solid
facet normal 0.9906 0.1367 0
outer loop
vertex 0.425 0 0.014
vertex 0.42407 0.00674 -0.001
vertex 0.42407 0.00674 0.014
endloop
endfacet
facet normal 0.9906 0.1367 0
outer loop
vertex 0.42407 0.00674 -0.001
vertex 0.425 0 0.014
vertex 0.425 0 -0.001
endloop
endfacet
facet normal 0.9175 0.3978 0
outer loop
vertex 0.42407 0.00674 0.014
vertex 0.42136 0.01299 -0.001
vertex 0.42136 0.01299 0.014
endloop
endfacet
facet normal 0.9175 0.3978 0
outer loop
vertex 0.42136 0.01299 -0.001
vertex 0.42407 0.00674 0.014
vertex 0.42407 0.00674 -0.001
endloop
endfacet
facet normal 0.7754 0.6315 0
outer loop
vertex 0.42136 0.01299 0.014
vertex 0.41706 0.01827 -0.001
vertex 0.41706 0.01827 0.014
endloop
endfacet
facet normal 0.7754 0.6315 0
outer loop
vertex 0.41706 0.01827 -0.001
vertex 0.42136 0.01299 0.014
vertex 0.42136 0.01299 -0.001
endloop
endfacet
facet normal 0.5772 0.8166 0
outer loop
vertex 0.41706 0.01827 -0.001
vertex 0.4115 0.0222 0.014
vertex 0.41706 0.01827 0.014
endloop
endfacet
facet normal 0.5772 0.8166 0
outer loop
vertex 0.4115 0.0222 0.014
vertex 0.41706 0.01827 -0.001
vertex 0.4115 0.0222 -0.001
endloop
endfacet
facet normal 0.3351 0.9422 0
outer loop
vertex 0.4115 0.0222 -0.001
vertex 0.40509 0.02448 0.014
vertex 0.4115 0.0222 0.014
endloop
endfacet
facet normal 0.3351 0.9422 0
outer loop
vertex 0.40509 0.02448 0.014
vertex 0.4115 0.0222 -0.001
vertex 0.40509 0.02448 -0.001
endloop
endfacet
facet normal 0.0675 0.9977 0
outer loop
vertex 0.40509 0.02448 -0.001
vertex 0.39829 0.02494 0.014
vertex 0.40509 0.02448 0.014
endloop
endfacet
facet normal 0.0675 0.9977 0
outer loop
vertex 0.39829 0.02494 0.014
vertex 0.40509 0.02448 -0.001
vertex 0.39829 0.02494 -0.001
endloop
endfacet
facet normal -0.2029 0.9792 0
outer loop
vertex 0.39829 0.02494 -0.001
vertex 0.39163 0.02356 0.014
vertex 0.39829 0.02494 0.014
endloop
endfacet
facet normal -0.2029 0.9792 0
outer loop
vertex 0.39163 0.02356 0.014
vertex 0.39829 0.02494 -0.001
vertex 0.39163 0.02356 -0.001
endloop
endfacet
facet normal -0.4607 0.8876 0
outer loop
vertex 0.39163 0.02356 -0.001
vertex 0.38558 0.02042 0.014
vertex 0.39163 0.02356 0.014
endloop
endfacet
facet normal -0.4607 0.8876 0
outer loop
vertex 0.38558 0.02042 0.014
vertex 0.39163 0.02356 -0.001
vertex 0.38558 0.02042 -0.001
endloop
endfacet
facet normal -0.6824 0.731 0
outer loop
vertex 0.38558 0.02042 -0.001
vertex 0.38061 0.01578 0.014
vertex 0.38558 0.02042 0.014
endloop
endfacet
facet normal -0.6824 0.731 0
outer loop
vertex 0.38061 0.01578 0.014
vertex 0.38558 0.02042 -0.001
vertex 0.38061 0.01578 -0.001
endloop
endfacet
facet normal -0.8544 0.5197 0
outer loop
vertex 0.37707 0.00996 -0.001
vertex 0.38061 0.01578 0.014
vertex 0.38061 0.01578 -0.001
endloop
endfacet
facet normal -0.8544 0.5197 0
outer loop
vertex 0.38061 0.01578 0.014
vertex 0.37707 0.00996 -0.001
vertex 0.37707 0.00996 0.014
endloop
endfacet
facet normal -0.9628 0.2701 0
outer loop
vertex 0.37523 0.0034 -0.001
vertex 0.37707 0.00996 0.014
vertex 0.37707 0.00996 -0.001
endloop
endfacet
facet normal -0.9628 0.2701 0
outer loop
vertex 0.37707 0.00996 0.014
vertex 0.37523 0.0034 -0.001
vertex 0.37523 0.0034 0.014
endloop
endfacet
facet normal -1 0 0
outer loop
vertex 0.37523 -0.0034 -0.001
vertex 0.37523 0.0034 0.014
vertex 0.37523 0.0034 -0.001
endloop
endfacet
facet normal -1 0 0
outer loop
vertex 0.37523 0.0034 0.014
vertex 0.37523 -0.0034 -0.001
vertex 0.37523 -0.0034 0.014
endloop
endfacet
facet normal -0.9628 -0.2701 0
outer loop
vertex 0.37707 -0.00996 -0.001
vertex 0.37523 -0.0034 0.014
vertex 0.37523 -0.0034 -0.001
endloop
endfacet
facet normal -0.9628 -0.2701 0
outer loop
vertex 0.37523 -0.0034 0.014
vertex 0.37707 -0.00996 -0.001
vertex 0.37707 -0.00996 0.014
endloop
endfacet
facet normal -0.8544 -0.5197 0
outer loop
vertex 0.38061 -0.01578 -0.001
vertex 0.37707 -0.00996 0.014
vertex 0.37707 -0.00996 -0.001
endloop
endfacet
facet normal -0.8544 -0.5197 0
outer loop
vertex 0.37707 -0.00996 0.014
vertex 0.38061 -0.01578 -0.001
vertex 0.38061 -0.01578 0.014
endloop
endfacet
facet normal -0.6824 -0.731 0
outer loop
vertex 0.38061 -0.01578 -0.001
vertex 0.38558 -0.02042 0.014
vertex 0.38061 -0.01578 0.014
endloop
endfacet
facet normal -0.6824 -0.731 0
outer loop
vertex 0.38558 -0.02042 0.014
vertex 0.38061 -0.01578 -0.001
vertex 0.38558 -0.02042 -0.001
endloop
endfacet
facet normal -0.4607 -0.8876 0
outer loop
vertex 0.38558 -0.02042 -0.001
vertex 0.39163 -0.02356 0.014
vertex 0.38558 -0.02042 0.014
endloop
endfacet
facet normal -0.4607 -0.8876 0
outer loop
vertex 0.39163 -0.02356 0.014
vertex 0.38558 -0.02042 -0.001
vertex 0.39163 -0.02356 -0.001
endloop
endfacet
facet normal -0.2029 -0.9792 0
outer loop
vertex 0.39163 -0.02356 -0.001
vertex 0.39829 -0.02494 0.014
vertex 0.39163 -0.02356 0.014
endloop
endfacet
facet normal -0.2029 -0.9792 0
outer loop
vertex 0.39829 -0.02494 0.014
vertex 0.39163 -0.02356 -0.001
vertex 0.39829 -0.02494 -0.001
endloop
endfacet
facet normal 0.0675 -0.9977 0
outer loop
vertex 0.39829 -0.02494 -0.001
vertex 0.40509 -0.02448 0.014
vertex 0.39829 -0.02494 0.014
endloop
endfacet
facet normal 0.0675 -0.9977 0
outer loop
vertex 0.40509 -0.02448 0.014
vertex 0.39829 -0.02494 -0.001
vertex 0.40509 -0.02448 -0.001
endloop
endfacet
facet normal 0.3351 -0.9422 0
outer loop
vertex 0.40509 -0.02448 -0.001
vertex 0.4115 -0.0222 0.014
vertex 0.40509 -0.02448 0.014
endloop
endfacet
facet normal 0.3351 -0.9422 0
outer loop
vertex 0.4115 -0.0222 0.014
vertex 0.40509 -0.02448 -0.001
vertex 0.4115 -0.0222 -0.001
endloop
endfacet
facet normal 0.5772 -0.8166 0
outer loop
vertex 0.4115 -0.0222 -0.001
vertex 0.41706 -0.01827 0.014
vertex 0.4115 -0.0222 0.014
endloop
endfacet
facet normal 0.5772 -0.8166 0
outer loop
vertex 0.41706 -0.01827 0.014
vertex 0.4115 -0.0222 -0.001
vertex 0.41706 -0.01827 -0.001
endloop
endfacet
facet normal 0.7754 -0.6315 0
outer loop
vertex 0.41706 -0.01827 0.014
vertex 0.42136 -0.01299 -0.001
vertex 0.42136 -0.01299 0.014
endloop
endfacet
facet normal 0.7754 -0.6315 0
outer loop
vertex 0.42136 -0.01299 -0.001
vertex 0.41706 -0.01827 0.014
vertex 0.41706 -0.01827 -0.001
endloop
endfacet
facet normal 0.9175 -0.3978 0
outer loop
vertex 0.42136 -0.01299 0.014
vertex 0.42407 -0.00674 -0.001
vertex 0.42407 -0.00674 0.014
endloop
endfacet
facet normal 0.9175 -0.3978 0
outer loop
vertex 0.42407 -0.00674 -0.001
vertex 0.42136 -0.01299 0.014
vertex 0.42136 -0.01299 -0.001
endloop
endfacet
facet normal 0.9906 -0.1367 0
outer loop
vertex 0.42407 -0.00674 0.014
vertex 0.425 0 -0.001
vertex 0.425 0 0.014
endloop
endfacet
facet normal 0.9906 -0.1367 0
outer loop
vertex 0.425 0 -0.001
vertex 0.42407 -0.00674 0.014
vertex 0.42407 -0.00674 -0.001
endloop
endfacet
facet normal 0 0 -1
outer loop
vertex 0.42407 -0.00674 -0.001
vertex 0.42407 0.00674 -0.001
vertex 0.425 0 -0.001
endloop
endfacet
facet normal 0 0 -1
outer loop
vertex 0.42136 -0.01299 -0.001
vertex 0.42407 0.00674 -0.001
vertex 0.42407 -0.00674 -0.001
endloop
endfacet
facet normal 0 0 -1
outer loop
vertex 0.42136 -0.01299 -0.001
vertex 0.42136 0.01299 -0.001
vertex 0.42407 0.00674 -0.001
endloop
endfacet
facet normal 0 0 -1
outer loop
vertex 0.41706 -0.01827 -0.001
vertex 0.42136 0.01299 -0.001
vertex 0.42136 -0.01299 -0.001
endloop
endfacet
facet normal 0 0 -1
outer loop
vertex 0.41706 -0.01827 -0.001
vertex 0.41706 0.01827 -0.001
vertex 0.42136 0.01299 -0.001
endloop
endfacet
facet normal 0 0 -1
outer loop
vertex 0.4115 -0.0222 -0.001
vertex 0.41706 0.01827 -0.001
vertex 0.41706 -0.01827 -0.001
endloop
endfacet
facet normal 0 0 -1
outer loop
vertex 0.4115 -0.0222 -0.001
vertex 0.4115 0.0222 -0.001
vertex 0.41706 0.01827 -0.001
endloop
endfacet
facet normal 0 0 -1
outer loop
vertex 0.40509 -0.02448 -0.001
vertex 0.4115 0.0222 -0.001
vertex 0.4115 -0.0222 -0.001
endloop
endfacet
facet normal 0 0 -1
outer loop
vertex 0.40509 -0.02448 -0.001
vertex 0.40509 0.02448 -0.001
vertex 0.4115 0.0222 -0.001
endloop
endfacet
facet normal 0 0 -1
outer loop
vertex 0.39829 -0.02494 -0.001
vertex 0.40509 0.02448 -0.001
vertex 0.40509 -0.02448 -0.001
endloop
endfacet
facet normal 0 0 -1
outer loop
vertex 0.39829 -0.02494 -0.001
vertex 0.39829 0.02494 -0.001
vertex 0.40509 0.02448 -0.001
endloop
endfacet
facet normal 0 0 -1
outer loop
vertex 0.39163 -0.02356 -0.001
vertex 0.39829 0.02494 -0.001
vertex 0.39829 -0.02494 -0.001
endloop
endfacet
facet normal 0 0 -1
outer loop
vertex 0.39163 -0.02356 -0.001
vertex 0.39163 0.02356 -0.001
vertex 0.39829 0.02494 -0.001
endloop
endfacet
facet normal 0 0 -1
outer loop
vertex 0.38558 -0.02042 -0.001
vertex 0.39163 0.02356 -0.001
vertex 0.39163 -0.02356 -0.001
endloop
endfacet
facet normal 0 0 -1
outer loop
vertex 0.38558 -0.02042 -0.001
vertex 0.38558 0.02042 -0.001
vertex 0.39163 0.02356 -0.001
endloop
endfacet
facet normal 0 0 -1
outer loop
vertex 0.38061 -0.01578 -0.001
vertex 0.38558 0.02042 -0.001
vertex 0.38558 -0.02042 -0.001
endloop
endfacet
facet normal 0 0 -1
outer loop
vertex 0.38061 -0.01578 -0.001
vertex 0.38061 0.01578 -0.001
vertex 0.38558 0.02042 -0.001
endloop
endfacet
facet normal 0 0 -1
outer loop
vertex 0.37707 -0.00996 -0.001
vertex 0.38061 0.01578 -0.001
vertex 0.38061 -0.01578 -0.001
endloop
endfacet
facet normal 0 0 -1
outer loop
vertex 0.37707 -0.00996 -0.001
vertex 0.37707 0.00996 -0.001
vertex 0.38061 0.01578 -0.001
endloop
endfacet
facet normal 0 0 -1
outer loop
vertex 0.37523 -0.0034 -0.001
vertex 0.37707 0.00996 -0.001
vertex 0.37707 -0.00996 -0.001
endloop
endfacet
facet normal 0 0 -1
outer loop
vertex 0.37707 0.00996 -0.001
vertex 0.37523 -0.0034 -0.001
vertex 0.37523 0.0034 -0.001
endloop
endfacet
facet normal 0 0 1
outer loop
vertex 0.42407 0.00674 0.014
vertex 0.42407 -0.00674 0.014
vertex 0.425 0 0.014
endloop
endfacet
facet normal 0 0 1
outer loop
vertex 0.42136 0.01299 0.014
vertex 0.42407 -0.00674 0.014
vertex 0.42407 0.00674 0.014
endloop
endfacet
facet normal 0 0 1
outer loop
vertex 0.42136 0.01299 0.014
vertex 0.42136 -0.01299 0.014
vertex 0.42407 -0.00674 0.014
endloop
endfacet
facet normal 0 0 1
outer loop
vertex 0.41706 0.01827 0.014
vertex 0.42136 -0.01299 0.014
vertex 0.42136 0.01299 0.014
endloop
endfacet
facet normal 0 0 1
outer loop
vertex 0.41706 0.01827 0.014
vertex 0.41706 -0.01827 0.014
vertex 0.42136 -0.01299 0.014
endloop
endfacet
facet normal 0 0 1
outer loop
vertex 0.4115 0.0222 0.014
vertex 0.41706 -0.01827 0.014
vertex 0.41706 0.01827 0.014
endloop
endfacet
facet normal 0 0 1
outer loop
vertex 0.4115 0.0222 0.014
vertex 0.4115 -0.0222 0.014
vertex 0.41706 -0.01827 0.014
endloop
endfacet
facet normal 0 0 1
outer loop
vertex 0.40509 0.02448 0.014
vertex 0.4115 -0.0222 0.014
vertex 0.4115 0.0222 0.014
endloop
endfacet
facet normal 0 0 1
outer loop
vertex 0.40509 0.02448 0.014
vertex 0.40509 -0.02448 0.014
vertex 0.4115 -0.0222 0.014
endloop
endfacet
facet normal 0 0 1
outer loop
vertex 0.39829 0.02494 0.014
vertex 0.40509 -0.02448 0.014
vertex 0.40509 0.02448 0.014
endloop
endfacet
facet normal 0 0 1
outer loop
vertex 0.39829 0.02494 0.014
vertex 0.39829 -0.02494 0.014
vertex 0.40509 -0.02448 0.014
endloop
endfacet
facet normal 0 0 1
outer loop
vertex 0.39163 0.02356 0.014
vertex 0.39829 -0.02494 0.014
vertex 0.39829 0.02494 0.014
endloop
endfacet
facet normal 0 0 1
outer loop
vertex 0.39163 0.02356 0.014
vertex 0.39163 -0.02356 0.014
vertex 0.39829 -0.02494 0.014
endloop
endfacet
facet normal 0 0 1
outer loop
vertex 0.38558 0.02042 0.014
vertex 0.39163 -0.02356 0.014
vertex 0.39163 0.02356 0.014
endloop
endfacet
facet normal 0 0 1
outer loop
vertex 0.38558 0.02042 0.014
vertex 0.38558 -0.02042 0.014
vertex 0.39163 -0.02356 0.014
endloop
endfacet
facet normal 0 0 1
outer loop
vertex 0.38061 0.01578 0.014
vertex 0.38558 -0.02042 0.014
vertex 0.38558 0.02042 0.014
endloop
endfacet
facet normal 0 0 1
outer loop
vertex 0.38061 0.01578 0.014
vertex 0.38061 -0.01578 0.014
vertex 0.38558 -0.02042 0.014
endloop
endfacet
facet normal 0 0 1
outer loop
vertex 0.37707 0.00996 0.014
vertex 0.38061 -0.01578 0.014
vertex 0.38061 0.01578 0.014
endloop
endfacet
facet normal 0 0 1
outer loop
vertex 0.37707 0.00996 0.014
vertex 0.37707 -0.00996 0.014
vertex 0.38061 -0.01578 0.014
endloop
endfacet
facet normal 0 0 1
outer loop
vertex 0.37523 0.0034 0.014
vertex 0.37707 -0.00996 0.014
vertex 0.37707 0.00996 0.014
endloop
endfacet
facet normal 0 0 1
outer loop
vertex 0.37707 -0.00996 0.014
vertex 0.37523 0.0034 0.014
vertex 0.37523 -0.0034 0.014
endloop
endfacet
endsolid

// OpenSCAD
$fn=23;

translate([0.4, 0, -0.001]){
    cylinder(r1=0.025,r2=0.025,h=0.015,center=false);
}
